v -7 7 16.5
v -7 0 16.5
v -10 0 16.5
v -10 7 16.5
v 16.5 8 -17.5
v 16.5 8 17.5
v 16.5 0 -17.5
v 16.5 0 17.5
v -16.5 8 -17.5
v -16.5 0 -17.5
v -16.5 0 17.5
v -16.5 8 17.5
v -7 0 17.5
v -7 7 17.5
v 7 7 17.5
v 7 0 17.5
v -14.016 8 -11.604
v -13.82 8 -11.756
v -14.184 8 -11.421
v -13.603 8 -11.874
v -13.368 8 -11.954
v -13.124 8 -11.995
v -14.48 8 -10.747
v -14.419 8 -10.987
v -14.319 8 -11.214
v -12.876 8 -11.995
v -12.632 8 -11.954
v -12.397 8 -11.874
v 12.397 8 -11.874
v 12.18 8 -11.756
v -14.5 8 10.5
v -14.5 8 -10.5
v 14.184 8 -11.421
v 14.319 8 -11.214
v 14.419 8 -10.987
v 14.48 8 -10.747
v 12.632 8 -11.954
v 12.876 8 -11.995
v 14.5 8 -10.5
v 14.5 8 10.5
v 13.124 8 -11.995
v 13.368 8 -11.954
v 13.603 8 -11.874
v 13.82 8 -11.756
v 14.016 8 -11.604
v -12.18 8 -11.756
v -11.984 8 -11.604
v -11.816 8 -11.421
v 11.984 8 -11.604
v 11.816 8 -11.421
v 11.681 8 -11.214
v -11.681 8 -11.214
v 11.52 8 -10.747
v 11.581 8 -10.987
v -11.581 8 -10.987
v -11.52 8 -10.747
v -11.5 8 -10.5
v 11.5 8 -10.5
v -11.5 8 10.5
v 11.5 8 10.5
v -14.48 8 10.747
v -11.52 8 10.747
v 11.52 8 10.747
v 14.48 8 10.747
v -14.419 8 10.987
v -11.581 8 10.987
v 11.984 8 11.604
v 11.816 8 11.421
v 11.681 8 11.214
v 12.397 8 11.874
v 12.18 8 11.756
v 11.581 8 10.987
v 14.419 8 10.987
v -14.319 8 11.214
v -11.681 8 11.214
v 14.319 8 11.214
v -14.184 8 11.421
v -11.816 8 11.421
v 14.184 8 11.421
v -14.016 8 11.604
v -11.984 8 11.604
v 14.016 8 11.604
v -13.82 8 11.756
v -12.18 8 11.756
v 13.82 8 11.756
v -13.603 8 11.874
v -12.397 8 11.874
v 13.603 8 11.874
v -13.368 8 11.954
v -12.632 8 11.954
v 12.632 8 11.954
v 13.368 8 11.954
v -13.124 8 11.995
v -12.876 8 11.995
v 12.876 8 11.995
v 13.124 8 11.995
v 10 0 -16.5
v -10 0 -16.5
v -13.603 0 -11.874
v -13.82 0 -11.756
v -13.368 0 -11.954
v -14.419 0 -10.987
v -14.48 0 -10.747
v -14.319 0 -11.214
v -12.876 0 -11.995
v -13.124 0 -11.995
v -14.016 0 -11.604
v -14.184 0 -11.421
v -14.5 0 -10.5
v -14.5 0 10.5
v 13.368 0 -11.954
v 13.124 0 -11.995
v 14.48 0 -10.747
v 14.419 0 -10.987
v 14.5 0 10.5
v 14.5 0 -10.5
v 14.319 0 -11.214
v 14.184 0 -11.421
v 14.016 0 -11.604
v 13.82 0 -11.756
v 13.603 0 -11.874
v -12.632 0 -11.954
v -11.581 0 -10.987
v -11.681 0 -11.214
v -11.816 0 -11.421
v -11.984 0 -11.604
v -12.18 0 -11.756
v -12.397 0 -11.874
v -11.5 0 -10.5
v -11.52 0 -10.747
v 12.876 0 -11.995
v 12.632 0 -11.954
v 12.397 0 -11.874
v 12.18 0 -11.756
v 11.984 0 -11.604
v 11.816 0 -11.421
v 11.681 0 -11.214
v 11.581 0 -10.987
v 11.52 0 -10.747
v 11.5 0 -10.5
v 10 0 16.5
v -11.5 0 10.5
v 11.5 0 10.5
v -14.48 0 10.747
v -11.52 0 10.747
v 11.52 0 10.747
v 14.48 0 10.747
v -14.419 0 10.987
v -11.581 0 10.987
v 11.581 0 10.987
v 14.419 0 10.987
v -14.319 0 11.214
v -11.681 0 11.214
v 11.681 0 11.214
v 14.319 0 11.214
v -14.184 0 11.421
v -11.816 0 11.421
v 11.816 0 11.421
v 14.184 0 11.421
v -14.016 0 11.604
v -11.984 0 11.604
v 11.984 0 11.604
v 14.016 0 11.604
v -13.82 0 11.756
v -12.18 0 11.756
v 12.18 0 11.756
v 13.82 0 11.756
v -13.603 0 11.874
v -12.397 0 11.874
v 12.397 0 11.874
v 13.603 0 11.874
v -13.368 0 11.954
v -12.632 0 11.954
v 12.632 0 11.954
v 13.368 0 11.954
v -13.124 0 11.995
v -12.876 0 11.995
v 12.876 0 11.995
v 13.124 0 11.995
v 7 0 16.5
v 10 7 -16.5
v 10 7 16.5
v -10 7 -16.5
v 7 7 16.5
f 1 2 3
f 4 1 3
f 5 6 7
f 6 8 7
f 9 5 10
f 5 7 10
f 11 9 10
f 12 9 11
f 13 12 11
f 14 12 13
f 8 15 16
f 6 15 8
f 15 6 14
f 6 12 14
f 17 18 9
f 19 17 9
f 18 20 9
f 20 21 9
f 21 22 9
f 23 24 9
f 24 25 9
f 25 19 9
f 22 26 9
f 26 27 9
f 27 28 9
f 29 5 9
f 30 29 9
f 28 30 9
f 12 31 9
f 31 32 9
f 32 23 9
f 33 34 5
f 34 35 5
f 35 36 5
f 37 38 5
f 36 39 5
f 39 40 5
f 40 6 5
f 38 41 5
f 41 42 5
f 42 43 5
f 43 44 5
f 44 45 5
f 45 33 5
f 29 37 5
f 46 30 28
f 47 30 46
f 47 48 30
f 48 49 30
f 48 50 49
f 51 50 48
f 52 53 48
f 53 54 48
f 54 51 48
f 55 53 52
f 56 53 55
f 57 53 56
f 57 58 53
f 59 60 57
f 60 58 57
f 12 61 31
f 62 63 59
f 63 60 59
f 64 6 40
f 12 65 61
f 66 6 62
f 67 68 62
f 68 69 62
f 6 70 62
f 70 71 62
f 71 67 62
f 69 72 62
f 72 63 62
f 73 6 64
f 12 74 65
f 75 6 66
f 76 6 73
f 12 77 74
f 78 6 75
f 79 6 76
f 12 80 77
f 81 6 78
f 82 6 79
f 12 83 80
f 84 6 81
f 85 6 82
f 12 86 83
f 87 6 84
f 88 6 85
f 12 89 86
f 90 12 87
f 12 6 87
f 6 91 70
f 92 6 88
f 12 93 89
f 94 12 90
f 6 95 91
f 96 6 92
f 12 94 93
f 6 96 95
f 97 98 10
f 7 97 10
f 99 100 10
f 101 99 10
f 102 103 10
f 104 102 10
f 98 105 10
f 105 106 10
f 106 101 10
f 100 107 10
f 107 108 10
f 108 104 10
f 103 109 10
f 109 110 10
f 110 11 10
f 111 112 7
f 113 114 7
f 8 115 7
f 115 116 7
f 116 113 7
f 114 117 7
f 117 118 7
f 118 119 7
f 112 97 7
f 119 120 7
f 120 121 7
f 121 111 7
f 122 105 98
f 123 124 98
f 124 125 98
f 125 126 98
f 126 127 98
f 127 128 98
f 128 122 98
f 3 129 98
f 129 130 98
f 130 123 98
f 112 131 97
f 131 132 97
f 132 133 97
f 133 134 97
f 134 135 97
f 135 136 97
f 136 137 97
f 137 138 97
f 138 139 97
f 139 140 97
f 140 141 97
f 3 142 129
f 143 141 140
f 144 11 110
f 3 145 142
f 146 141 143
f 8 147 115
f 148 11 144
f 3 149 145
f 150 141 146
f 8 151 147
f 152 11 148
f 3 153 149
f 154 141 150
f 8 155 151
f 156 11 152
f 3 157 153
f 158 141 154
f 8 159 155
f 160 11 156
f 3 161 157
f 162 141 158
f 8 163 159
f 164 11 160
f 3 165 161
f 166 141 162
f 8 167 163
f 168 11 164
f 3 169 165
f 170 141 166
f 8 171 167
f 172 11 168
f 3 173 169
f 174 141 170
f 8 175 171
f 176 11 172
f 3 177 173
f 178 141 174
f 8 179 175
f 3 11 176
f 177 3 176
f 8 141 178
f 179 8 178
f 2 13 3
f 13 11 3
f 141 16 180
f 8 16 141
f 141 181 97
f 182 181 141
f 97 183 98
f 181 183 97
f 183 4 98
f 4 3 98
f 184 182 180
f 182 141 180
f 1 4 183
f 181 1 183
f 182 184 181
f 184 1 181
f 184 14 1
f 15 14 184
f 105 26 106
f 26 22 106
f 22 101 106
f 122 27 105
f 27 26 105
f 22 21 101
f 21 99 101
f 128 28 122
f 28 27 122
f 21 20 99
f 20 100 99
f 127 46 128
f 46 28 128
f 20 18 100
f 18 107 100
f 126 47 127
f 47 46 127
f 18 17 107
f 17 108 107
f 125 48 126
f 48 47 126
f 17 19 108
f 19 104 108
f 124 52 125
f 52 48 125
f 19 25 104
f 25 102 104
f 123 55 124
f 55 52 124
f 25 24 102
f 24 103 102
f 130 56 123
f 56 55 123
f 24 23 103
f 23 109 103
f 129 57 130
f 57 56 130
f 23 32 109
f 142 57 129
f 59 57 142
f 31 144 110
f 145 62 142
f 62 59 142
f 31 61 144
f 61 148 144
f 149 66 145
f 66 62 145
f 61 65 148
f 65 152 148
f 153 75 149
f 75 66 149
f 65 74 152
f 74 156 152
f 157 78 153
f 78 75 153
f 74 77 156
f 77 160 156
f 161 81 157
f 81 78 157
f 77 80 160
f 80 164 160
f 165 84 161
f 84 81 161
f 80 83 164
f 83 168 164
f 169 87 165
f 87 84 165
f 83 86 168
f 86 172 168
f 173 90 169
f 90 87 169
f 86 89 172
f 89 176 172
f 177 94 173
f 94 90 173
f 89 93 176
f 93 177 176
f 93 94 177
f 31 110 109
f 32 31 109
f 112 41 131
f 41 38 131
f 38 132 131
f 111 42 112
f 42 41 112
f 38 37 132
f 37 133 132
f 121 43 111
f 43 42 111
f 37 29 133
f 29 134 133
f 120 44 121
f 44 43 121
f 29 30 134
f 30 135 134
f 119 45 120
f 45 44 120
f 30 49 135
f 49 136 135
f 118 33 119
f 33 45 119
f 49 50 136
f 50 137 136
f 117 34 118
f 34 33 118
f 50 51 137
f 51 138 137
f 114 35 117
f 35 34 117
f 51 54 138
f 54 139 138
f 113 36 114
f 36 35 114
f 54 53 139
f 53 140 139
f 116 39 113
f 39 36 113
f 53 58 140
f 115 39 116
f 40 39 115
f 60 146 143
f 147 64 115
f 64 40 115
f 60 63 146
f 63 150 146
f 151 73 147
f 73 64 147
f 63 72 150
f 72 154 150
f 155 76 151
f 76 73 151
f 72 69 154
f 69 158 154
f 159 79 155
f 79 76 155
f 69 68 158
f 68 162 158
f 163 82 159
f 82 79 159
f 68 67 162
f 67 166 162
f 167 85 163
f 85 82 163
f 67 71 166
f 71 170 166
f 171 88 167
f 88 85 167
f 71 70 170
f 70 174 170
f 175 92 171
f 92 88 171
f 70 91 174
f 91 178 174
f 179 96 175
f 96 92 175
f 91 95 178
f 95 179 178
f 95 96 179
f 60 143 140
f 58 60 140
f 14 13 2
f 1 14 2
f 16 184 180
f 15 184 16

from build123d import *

# Parameters (mm, degrees)
SKETCH1_W           = 33
SKETCH1_H           = 35
BOSS_EXTRUDE1_DEPTH = 8
SKETCH2_W           = 20
SKETCH2_H           = 33
CUT_EXTRUDE1_DEPTH  = 7
CUT_EXTRUDE3_DEPTH  = 9
SKETCH3_W           = 14
SKETCH3_H           = 7
CUT_EXTRUDE4_DEPTH  = 7


with BuildPart() as part:
    # Sketch1 → Boss-Extrude1 (new body)
    with BuildSketch(Plane(origin=(0, 0, 0), x_dir=(1, 0, 0), z_dir=(0, 1, 0))):
        Rectangle(SKETCH1_W, SKETCH1_H)
    extrude(amount=BOSS_EXTRUDE1_DEPTH)

    # Sketch2 → Cut-Extrude1 (cut)
    with BuildSketch(Plane.XZ):
        Rectangle(SKETCH2_W, SKETCH2_H)
    extrude(amount=-CUT_EXTRUDE1_DEPTH, mode=Mode.SUBTRACT)

    # Sketch4 → Cut-Extrude3 (cut, through all)
    with BuildSketch(Plane(origin=(0, 8, 0), x_dir=(1, 0, 0), z_dir=(0, 1, 0))):
        with BuildLine():
            Line((14.5, 10.5), (14.5, -10.5))
            ThreePointArc((14.5, -10.5), (13, -12), (11.5, -10.5))
            Line((11.5, -10.5), (11.5, 10.5))
            ThreePointArc((11.5, 10.5), (13, 12), (14.5, 10.5))
        make_face()
        with BuildLine():
            Line((-14.5, 10.5), (-14.5, -10.5))
            ThreePointArc((-14.5, -10.5), (-13, -12), (-11.5, -10.5))
            Line((-11.5, -10.5), (-11.5, 10.5))
            ThreePointArc((-11.5, 10.5), (-13, 12), (-14.5, 10.5))
        make_face()
    extrude(amount=-CUT_EXTRUDE3_DEPTH, mode=Mode.SUBTRACT)

    # Sketch3 → Cut-Extrude4 (cut)
    with BuildSketch(Plane.XY.offset(17.5)):
        with Locations((0, 3.5)):
            Rectangle(SKETCH3_W, SKETCH3_H)
    extrude(amount=-CUT_EXTRUDE4_DEPTH, mode=Mode.SUBTRACT)


solid = part.part
